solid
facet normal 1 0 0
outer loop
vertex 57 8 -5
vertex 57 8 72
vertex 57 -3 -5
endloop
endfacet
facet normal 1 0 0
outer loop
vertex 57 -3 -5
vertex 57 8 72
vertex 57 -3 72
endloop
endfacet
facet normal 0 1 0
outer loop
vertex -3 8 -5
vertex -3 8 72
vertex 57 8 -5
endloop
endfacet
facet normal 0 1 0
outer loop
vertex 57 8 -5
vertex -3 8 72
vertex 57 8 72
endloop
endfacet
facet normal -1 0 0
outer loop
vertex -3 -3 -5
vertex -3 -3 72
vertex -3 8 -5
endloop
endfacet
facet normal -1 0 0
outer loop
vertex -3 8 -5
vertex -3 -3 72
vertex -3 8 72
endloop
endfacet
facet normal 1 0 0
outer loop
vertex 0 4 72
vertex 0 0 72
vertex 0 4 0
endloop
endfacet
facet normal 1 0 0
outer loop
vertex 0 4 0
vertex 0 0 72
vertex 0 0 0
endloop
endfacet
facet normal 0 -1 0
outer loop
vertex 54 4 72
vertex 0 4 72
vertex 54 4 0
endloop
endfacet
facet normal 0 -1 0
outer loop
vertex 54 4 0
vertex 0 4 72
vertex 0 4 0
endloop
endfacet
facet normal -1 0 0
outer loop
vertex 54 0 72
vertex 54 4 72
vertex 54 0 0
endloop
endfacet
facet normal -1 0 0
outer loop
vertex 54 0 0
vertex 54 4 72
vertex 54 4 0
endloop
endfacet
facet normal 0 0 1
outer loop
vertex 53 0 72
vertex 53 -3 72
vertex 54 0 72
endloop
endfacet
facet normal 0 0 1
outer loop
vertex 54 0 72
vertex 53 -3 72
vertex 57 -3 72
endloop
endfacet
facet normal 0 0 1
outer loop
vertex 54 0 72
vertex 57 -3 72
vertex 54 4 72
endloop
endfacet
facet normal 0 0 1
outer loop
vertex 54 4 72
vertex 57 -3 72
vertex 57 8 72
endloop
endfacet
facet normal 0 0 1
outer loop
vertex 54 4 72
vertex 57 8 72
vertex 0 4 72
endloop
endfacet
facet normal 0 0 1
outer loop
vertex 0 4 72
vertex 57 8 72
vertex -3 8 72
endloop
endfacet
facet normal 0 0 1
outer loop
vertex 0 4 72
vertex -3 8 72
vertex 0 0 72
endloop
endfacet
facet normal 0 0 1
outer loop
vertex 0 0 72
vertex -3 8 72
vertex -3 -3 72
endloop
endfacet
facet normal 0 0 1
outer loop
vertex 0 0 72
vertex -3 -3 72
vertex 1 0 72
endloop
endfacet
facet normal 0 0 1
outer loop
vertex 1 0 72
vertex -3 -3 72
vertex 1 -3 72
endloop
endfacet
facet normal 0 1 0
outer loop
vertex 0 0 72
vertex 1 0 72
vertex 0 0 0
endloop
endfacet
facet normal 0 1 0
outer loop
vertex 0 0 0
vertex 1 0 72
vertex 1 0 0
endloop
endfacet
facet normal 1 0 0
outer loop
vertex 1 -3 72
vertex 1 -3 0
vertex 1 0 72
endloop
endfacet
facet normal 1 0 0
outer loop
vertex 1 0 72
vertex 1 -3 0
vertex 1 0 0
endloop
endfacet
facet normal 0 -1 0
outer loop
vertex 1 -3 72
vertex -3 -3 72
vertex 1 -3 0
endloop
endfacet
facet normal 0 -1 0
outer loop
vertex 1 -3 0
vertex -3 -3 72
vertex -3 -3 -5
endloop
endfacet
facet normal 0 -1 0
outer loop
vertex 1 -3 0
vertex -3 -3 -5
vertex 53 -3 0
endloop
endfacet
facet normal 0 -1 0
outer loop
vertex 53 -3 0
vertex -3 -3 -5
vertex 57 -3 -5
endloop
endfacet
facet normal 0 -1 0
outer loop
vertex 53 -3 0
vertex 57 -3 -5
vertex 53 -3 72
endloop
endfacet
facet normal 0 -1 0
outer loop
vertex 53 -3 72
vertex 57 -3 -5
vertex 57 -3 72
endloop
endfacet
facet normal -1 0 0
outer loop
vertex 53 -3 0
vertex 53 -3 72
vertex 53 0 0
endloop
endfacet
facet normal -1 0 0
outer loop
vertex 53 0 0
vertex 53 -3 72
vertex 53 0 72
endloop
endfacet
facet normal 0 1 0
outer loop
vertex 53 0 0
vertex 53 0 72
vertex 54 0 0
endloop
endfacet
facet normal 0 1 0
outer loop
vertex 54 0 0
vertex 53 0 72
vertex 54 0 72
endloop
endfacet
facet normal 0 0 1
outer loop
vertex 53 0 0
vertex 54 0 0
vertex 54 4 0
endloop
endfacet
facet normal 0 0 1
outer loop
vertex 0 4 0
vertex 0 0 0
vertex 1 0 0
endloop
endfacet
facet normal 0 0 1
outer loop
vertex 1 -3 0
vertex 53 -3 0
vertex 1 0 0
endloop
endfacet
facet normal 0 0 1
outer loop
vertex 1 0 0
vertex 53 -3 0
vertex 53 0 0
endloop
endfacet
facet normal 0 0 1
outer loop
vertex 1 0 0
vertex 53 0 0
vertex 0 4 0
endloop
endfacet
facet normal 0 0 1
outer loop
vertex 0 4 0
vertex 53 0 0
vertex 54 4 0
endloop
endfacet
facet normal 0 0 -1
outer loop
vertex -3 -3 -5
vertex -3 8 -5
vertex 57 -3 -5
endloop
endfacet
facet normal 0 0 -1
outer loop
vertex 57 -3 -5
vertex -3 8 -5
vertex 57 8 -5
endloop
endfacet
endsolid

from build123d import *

# Parameters (mm, degrees)
EXTRUDE_1_DEPTH = 72
SKETCH_2_W      = 4
SKETCH_2_H      = 72
EXTRUDE_2_DEPTH = 3
SKETCH_4_W      = 60
SKETCH_4_H      = 11
EXTRUDE_3_DEPTH = 5


with BuildPart() as part:
    # 스케치1 → 보스-돌출1 (new body)
    with BuildSketch(Plane.XY):
        Polygon((-3, 0), (0, 0), (0, 4), (54, 4), (54, 0), (57, 0), (57, 8), (-3, 8), align=None)
    extrude(amount=EXTRUDE_1_DEPTH)

    # 스케치2 → 보스-돌출2 (add)
    with BuildSketch(Plane.XZ):
        with Locations((-1, 36)):
            Rectangle(SKETCH_2_W, SKETCH_2_H)
        with Locations((55, 36)):
            Rectangle(SKETCH_2_W, SKETCH_2_H)
    extrude(amount=EXTRUDE_2_DEPTH)

    # 스케치4 → 보스-돌출3 (add)
    with BuildSketch(Plane(origin=(0, 0, 0), x_dir=(-1, 0, 0), z_dir=(0, 0, -1))):
        with Locations((-27, 2.5)):
            Rectangle(SKETCH_4_W, SKETCH_4_H)
    extrude(amount=EXTRUDE_3_DEPTH)


solid = part.part
